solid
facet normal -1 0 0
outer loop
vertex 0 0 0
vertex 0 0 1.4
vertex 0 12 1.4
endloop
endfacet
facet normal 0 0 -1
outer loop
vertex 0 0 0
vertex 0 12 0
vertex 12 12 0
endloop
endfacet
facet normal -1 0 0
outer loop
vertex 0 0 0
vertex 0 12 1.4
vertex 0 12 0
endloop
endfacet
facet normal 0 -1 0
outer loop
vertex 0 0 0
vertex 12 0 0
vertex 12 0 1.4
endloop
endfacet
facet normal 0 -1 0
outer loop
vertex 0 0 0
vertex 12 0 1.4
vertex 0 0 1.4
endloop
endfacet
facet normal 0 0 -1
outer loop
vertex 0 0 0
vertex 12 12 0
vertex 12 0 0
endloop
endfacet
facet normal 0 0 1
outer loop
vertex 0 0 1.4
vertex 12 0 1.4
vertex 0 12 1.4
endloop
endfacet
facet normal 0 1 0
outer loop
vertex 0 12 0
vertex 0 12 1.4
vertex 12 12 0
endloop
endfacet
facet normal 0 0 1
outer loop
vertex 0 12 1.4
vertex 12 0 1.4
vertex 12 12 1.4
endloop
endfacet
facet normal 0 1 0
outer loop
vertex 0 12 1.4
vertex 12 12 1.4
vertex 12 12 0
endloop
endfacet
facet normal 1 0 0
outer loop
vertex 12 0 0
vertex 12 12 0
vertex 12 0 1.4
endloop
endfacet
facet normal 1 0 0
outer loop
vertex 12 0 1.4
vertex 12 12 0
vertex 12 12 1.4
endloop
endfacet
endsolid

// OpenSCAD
/* Warning, this is a very basic generator with a lot of approximation 
input data : [LFBGA, HVX, 12x12x1.4mm, 196, , A, C04-00237A]
generated by com.zoubworld.electronics.cad.model3d.Basic
Date : Sun Feb 15 10:50:48 CET 2026
*/

//body
color("black")
translate([0,0,0])
cube([12.0,12.0,1.4], center=false);
